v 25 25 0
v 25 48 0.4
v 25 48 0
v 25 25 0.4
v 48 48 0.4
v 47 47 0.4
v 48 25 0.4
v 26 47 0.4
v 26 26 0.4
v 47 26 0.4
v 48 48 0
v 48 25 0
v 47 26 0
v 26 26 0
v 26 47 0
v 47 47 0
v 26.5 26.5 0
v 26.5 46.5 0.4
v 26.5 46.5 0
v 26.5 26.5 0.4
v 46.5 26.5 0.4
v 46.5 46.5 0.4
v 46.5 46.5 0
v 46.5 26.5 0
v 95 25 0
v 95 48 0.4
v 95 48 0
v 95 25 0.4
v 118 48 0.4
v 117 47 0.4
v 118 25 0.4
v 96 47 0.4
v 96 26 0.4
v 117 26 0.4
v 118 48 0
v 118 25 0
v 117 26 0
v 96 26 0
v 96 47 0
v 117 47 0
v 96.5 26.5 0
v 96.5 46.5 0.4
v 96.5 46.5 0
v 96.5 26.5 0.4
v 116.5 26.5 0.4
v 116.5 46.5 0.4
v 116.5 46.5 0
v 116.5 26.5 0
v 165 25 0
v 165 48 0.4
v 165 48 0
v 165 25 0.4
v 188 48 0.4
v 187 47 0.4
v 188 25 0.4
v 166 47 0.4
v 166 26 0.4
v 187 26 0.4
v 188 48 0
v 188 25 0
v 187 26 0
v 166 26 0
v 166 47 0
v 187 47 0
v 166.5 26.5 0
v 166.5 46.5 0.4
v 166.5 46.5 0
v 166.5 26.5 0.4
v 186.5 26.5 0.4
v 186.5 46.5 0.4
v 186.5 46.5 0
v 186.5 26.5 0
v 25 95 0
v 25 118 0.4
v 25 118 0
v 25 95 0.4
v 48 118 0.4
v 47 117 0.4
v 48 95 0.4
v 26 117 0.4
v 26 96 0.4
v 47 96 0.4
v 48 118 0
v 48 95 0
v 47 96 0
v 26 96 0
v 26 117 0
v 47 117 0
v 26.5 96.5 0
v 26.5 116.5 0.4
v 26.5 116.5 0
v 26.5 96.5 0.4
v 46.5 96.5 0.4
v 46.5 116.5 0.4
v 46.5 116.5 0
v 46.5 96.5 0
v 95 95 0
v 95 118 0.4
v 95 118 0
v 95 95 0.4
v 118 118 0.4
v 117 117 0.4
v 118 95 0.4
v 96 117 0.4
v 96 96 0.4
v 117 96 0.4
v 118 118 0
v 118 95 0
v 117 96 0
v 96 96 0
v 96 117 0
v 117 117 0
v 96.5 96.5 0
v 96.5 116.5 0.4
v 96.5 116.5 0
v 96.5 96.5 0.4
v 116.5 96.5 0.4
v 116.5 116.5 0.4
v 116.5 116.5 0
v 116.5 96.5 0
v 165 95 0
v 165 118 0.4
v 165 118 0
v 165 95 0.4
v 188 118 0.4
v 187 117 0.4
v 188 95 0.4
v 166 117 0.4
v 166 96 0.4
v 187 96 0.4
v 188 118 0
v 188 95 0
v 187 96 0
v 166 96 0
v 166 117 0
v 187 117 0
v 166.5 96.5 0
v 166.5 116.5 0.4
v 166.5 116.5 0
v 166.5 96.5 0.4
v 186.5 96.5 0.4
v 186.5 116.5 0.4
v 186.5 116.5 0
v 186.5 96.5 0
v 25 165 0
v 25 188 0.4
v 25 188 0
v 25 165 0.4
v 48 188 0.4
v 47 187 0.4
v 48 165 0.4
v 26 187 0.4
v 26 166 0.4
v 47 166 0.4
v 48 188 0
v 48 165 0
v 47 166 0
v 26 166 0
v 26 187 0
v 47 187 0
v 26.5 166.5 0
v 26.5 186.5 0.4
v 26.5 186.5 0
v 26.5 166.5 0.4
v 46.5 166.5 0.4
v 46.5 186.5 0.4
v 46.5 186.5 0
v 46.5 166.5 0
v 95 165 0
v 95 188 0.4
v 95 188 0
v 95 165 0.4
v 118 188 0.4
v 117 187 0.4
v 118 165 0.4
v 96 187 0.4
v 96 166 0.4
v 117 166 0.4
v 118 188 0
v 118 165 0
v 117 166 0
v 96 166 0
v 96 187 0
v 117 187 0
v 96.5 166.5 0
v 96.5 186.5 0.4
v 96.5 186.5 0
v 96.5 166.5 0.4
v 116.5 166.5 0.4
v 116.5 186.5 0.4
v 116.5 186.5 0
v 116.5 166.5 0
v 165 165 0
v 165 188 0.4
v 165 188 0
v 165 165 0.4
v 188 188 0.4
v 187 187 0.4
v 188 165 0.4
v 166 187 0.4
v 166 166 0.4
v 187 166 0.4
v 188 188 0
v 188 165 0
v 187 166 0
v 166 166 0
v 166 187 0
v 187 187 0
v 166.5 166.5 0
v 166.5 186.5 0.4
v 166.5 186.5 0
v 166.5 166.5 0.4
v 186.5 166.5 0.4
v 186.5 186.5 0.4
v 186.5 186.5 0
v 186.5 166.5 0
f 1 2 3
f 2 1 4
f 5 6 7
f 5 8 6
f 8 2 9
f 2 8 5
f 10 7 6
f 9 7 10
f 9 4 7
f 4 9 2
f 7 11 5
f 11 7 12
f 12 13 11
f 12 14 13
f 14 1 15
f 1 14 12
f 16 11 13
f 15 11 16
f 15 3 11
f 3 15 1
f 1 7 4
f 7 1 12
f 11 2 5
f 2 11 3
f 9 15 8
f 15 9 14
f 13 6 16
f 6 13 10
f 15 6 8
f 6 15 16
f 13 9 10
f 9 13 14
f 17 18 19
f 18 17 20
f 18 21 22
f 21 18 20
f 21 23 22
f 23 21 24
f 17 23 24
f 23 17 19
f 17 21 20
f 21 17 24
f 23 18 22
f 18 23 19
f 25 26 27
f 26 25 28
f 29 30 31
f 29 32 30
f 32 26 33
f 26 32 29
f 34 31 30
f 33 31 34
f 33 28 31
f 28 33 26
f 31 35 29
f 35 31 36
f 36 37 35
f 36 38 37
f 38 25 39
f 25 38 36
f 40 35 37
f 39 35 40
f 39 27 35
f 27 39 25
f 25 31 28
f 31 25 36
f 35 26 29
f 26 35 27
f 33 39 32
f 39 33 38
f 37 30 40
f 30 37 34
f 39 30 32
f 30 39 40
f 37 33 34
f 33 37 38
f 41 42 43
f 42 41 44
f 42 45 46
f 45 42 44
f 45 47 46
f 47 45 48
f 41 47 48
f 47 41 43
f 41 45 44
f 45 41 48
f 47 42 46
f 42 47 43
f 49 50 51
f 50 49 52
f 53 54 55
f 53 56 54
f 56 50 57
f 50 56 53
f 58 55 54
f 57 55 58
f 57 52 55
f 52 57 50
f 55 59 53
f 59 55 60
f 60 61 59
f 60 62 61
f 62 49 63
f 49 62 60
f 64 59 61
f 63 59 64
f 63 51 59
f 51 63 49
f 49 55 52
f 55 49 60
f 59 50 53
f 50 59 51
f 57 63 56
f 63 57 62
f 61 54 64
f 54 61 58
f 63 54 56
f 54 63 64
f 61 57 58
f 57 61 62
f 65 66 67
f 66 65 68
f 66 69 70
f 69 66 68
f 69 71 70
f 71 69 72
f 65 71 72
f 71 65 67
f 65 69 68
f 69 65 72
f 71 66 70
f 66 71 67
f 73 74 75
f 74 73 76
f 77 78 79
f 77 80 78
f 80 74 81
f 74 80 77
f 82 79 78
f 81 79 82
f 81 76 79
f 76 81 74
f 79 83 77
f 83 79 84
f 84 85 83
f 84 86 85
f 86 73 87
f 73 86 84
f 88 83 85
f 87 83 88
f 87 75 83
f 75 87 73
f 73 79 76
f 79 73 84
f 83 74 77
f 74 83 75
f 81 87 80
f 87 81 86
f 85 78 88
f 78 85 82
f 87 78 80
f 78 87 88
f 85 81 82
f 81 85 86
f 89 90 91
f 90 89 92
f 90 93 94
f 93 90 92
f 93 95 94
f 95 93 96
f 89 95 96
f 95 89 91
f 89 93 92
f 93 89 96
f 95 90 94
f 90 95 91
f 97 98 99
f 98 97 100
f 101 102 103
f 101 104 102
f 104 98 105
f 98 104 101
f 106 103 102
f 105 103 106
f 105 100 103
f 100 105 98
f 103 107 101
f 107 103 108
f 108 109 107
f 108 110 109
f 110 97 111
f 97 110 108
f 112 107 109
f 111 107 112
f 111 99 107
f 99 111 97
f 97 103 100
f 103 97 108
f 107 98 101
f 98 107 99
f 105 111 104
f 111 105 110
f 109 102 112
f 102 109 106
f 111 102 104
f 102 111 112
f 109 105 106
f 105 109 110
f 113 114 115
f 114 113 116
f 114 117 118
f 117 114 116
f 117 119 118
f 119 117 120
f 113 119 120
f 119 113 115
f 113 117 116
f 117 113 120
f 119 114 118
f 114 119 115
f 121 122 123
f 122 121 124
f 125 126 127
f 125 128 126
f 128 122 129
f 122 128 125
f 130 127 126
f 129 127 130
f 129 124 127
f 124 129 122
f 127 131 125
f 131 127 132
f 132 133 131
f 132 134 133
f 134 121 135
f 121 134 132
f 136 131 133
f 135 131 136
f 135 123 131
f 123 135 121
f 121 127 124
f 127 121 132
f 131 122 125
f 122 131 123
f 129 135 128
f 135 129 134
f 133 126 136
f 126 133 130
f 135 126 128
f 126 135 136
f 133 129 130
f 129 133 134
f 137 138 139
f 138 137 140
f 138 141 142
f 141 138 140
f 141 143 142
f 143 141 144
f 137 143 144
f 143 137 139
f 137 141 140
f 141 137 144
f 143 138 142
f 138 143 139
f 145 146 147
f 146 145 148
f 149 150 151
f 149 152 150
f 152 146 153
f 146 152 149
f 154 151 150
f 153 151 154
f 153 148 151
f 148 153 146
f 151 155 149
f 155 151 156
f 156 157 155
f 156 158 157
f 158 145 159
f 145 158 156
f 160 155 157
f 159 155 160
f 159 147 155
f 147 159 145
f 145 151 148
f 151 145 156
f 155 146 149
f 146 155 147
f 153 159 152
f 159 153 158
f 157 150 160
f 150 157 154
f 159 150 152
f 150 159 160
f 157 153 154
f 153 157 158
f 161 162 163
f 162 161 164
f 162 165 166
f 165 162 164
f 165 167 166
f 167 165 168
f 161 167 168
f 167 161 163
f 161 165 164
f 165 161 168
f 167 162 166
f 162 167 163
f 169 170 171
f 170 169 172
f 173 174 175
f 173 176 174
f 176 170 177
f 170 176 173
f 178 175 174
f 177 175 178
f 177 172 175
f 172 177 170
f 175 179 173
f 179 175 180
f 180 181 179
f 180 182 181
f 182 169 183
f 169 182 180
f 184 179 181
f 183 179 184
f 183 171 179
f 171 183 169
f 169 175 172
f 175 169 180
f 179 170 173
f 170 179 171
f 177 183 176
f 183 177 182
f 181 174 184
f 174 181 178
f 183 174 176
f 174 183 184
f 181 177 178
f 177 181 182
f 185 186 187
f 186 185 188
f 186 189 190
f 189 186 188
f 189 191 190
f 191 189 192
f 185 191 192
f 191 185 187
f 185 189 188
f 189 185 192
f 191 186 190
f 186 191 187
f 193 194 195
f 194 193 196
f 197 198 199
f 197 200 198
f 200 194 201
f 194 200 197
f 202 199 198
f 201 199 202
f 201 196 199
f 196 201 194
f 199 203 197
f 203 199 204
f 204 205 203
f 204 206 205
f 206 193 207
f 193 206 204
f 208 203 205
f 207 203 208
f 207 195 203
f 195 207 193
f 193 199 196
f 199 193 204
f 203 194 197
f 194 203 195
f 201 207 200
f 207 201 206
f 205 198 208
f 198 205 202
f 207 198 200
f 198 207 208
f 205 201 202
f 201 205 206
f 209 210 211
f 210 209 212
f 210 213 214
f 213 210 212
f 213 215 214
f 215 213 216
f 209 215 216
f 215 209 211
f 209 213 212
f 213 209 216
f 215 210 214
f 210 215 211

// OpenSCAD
/**
 * Print designed to check that you bed is level
 *
 * print four small squares in each corner to ensure even print quality and good adhesion.
 */

// Define your printers printable area
// If you are using Sprinter firmware then these come directly from configuration.h

X_MAX_LENGTH = 210;
Y_MAX_LENGTH = 210;

THICKNESS = 0.4; //Square / outline thickness
SIZE = 20; //Square width / height
GAP = 0.5; //Width of border between square and parameter
OUTLINE_WIDTH = 1; //Width of parameter around square
OFFSET = 25; //Offset from limits in each axis

translate([OFFSET, OFFSET, 0]) square(); //Top Left
translate([(X_MAX_LENGTH / 2) - (SIZE / 2), OFFSET, 0]) square(); //Top Middle
translate([X_MAX_LENGTH - OFFSET - SIZE, OFFSET, 0]) square(); //Top Right

translate([OFFSET, (Y_MAX_LENGTH / 2) - (SIZE / 2), 0]) square(); //Middle Left
translate([(X_MAX_LENGTH / 2) - (SIZE / 2), (Y_MAX_LENGTH / 2) - (SIZE / 2), 0]) square(); //Middle Middle
translate([X_MAX_LENGTH - OFFSET - SIZE, (Y_MAX_LENGTH / 2) - (SIZE / 2), 0]) square(); //Middle Right

translate([OFFSET, Y_MAX_LENGTH - OFFSET - SIZE, 0]) square(); //Bottom Left
translate([(X_MAX_LENGTH / 2) - (SIZE / 2), Y_MAX_LENGTH - OFFSET - SIZE, 0]) square(); //Bottom Middle
translate([X_MAX_LENGTH - OFFSET - SIZE, Y_MAX_LENGTH - OFFSET - SIZE, 0]) square(); //Bottom Right

module square() {
	//Center square
	translate([
				OUTLINE_WIDTH + GAP,
				OUTLINE_WIDTH + GAP,
				0
			])
		cube([SIZE, SIZE, THICKNESS]);

	//Parameter
	difference() {
		//Outer square
		cube([
				SIZE + (2 * (GAP + OUTLINE_WIDTH)),
				SIZE + (2 * (GAP + OUTLINE_WIDTH)),
				THICKNESS
			]);

		//Inner square
		translate([OUTLINE_WIDTH, OUTLINE_WIDTH, -5])
			cube([SIZE + (2 * GAP), SIZE + (2 * GAP), 10]);
	}
}
